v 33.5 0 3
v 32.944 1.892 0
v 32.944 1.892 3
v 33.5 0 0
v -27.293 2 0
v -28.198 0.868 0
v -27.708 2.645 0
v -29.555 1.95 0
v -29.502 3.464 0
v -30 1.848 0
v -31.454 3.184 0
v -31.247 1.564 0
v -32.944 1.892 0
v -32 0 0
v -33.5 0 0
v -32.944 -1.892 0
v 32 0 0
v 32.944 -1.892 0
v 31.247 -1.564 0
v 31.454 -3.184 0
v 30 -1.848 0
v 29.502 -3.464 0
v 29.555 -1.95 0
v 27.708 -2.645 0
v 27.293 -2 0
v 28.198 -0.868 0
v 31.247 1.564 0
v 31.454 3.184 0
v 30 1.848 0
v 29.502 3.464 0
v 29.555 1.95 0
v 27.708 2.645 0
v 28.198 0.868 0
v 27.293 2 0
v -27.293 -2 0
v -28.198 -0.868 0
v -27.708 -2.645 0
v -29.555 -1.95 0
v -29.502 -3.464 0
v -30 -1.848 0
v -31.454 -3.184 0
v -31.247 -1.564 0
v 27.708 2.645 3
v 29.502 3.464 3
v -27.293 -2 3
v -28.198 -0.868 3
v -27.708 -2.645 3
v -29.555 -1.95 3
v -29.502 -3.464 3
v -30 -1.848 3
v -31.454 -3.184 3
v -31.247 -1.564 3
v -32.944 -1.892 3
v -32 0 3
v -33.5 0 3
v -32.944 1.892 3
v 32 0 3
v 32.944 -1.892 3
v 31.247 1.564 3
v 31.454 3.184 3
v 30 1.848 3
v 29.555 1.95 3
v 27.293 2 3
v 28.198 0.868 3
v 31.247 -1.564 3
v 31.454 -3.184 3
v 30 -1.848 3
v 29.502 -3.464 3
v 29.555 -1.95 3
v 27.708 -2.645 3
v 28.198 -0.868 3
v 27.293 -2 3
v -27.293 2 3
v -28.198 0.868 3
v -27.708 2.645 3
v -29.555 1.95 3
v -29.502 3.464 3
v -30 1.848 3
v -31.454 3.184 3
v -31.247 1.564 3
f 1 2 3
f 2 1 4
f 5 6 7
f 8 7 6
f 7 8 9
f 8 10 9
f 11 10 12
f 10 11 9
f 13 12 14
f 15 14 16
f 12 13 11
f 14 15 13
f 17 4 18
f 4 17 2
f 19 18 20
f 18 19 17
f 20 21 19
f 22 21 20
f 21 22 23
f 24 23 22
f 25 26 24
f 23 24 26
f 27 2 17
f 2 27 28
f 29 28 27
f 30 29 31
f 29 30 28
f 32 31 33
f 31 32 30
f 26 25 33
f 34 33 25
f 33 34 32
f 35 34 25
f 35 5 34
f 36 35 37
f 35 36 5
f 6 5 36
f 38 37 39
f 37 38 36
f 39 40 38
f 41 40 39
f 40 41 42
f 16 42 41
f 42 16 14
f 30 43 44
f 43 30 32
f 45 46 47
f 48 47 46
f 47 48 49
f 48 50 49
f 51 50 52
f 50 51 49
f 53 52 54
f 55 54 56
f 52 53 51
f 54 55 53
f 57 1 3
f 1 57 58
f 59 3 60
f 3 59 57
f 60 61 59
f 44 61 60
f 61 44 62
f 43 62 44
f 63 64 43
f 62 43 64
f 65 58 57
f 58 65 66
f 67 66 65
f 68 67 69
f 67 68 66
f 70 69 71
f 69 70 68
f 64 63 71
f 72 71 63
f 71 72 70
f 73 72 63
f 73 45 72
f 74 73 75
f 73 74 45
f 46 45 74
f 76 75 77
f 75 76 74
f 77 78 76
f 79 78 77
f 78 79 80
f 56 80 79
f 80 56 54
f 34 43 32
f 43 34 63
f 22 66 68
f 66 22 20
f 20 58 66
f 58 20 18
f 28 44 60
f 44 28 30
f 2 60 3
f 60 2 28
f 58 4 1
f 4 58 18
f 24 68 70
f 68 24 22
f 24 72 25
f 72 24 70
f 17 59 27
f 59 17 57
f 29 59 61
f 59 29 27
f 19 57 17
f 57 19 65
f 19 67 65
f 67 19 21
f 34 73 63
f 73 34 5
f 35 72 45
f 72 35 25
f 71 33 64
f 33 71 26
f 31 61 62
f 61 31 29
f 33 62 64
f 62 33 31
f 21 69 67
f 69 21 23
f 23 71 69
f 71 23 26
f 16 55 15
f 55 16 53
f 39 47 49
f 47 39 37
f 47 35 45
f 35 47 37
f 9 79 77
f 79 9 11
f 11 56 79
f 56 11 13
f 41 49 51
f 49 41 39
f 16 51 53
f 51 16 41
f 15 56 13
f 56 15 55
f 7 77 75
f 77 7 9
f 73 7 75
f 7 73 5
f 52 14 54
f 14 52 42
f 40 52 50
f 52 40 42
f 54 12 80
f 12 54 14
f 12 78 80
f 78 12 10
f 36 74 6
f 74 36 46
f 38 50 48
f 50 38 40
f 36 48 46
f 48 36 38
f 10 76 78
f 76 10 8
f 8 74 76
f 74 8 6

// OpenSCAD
union() {
	difference() {
		union() {
			translate(v = [0, -2.0000000000, 0]) {
				cube(size = [30.0000000000, 4, 3]);
			}
			translate(v = [30.0000000000, 0, 0]) {
				difference() {
					cylinder(d = 7, h = 3);
					translate(v = [0, 0, -1.5000000000]) {
						cylinder(d = 4, h = 6);
					}
				}
			}
		}
		translate(v = [30.0000000000, 0, 0]) {
			cylinder(d = 4, h = 3);
		}
	}
	rotate(a = [0, 0, 180]) {
		difference() {
			union() {
				translate(v = [0, -2.0000000000, 0]) {
					cube(size = [30.0000000000, 4, 3]);
				}
				translate(v = [30.0000000000, 0, 0]) {
					difference() {
						cylinder(d = 7, h = 3);
						translate(v = [0, 0, -1.5000000000]) {
							cylinder(d = 4, h = 6);
						}
					}
				}
			}
			translate(v = [30.0000000000, 0, 0]) {
				cylinder(d = 4, h = 3);
			}
		}
	}
}
